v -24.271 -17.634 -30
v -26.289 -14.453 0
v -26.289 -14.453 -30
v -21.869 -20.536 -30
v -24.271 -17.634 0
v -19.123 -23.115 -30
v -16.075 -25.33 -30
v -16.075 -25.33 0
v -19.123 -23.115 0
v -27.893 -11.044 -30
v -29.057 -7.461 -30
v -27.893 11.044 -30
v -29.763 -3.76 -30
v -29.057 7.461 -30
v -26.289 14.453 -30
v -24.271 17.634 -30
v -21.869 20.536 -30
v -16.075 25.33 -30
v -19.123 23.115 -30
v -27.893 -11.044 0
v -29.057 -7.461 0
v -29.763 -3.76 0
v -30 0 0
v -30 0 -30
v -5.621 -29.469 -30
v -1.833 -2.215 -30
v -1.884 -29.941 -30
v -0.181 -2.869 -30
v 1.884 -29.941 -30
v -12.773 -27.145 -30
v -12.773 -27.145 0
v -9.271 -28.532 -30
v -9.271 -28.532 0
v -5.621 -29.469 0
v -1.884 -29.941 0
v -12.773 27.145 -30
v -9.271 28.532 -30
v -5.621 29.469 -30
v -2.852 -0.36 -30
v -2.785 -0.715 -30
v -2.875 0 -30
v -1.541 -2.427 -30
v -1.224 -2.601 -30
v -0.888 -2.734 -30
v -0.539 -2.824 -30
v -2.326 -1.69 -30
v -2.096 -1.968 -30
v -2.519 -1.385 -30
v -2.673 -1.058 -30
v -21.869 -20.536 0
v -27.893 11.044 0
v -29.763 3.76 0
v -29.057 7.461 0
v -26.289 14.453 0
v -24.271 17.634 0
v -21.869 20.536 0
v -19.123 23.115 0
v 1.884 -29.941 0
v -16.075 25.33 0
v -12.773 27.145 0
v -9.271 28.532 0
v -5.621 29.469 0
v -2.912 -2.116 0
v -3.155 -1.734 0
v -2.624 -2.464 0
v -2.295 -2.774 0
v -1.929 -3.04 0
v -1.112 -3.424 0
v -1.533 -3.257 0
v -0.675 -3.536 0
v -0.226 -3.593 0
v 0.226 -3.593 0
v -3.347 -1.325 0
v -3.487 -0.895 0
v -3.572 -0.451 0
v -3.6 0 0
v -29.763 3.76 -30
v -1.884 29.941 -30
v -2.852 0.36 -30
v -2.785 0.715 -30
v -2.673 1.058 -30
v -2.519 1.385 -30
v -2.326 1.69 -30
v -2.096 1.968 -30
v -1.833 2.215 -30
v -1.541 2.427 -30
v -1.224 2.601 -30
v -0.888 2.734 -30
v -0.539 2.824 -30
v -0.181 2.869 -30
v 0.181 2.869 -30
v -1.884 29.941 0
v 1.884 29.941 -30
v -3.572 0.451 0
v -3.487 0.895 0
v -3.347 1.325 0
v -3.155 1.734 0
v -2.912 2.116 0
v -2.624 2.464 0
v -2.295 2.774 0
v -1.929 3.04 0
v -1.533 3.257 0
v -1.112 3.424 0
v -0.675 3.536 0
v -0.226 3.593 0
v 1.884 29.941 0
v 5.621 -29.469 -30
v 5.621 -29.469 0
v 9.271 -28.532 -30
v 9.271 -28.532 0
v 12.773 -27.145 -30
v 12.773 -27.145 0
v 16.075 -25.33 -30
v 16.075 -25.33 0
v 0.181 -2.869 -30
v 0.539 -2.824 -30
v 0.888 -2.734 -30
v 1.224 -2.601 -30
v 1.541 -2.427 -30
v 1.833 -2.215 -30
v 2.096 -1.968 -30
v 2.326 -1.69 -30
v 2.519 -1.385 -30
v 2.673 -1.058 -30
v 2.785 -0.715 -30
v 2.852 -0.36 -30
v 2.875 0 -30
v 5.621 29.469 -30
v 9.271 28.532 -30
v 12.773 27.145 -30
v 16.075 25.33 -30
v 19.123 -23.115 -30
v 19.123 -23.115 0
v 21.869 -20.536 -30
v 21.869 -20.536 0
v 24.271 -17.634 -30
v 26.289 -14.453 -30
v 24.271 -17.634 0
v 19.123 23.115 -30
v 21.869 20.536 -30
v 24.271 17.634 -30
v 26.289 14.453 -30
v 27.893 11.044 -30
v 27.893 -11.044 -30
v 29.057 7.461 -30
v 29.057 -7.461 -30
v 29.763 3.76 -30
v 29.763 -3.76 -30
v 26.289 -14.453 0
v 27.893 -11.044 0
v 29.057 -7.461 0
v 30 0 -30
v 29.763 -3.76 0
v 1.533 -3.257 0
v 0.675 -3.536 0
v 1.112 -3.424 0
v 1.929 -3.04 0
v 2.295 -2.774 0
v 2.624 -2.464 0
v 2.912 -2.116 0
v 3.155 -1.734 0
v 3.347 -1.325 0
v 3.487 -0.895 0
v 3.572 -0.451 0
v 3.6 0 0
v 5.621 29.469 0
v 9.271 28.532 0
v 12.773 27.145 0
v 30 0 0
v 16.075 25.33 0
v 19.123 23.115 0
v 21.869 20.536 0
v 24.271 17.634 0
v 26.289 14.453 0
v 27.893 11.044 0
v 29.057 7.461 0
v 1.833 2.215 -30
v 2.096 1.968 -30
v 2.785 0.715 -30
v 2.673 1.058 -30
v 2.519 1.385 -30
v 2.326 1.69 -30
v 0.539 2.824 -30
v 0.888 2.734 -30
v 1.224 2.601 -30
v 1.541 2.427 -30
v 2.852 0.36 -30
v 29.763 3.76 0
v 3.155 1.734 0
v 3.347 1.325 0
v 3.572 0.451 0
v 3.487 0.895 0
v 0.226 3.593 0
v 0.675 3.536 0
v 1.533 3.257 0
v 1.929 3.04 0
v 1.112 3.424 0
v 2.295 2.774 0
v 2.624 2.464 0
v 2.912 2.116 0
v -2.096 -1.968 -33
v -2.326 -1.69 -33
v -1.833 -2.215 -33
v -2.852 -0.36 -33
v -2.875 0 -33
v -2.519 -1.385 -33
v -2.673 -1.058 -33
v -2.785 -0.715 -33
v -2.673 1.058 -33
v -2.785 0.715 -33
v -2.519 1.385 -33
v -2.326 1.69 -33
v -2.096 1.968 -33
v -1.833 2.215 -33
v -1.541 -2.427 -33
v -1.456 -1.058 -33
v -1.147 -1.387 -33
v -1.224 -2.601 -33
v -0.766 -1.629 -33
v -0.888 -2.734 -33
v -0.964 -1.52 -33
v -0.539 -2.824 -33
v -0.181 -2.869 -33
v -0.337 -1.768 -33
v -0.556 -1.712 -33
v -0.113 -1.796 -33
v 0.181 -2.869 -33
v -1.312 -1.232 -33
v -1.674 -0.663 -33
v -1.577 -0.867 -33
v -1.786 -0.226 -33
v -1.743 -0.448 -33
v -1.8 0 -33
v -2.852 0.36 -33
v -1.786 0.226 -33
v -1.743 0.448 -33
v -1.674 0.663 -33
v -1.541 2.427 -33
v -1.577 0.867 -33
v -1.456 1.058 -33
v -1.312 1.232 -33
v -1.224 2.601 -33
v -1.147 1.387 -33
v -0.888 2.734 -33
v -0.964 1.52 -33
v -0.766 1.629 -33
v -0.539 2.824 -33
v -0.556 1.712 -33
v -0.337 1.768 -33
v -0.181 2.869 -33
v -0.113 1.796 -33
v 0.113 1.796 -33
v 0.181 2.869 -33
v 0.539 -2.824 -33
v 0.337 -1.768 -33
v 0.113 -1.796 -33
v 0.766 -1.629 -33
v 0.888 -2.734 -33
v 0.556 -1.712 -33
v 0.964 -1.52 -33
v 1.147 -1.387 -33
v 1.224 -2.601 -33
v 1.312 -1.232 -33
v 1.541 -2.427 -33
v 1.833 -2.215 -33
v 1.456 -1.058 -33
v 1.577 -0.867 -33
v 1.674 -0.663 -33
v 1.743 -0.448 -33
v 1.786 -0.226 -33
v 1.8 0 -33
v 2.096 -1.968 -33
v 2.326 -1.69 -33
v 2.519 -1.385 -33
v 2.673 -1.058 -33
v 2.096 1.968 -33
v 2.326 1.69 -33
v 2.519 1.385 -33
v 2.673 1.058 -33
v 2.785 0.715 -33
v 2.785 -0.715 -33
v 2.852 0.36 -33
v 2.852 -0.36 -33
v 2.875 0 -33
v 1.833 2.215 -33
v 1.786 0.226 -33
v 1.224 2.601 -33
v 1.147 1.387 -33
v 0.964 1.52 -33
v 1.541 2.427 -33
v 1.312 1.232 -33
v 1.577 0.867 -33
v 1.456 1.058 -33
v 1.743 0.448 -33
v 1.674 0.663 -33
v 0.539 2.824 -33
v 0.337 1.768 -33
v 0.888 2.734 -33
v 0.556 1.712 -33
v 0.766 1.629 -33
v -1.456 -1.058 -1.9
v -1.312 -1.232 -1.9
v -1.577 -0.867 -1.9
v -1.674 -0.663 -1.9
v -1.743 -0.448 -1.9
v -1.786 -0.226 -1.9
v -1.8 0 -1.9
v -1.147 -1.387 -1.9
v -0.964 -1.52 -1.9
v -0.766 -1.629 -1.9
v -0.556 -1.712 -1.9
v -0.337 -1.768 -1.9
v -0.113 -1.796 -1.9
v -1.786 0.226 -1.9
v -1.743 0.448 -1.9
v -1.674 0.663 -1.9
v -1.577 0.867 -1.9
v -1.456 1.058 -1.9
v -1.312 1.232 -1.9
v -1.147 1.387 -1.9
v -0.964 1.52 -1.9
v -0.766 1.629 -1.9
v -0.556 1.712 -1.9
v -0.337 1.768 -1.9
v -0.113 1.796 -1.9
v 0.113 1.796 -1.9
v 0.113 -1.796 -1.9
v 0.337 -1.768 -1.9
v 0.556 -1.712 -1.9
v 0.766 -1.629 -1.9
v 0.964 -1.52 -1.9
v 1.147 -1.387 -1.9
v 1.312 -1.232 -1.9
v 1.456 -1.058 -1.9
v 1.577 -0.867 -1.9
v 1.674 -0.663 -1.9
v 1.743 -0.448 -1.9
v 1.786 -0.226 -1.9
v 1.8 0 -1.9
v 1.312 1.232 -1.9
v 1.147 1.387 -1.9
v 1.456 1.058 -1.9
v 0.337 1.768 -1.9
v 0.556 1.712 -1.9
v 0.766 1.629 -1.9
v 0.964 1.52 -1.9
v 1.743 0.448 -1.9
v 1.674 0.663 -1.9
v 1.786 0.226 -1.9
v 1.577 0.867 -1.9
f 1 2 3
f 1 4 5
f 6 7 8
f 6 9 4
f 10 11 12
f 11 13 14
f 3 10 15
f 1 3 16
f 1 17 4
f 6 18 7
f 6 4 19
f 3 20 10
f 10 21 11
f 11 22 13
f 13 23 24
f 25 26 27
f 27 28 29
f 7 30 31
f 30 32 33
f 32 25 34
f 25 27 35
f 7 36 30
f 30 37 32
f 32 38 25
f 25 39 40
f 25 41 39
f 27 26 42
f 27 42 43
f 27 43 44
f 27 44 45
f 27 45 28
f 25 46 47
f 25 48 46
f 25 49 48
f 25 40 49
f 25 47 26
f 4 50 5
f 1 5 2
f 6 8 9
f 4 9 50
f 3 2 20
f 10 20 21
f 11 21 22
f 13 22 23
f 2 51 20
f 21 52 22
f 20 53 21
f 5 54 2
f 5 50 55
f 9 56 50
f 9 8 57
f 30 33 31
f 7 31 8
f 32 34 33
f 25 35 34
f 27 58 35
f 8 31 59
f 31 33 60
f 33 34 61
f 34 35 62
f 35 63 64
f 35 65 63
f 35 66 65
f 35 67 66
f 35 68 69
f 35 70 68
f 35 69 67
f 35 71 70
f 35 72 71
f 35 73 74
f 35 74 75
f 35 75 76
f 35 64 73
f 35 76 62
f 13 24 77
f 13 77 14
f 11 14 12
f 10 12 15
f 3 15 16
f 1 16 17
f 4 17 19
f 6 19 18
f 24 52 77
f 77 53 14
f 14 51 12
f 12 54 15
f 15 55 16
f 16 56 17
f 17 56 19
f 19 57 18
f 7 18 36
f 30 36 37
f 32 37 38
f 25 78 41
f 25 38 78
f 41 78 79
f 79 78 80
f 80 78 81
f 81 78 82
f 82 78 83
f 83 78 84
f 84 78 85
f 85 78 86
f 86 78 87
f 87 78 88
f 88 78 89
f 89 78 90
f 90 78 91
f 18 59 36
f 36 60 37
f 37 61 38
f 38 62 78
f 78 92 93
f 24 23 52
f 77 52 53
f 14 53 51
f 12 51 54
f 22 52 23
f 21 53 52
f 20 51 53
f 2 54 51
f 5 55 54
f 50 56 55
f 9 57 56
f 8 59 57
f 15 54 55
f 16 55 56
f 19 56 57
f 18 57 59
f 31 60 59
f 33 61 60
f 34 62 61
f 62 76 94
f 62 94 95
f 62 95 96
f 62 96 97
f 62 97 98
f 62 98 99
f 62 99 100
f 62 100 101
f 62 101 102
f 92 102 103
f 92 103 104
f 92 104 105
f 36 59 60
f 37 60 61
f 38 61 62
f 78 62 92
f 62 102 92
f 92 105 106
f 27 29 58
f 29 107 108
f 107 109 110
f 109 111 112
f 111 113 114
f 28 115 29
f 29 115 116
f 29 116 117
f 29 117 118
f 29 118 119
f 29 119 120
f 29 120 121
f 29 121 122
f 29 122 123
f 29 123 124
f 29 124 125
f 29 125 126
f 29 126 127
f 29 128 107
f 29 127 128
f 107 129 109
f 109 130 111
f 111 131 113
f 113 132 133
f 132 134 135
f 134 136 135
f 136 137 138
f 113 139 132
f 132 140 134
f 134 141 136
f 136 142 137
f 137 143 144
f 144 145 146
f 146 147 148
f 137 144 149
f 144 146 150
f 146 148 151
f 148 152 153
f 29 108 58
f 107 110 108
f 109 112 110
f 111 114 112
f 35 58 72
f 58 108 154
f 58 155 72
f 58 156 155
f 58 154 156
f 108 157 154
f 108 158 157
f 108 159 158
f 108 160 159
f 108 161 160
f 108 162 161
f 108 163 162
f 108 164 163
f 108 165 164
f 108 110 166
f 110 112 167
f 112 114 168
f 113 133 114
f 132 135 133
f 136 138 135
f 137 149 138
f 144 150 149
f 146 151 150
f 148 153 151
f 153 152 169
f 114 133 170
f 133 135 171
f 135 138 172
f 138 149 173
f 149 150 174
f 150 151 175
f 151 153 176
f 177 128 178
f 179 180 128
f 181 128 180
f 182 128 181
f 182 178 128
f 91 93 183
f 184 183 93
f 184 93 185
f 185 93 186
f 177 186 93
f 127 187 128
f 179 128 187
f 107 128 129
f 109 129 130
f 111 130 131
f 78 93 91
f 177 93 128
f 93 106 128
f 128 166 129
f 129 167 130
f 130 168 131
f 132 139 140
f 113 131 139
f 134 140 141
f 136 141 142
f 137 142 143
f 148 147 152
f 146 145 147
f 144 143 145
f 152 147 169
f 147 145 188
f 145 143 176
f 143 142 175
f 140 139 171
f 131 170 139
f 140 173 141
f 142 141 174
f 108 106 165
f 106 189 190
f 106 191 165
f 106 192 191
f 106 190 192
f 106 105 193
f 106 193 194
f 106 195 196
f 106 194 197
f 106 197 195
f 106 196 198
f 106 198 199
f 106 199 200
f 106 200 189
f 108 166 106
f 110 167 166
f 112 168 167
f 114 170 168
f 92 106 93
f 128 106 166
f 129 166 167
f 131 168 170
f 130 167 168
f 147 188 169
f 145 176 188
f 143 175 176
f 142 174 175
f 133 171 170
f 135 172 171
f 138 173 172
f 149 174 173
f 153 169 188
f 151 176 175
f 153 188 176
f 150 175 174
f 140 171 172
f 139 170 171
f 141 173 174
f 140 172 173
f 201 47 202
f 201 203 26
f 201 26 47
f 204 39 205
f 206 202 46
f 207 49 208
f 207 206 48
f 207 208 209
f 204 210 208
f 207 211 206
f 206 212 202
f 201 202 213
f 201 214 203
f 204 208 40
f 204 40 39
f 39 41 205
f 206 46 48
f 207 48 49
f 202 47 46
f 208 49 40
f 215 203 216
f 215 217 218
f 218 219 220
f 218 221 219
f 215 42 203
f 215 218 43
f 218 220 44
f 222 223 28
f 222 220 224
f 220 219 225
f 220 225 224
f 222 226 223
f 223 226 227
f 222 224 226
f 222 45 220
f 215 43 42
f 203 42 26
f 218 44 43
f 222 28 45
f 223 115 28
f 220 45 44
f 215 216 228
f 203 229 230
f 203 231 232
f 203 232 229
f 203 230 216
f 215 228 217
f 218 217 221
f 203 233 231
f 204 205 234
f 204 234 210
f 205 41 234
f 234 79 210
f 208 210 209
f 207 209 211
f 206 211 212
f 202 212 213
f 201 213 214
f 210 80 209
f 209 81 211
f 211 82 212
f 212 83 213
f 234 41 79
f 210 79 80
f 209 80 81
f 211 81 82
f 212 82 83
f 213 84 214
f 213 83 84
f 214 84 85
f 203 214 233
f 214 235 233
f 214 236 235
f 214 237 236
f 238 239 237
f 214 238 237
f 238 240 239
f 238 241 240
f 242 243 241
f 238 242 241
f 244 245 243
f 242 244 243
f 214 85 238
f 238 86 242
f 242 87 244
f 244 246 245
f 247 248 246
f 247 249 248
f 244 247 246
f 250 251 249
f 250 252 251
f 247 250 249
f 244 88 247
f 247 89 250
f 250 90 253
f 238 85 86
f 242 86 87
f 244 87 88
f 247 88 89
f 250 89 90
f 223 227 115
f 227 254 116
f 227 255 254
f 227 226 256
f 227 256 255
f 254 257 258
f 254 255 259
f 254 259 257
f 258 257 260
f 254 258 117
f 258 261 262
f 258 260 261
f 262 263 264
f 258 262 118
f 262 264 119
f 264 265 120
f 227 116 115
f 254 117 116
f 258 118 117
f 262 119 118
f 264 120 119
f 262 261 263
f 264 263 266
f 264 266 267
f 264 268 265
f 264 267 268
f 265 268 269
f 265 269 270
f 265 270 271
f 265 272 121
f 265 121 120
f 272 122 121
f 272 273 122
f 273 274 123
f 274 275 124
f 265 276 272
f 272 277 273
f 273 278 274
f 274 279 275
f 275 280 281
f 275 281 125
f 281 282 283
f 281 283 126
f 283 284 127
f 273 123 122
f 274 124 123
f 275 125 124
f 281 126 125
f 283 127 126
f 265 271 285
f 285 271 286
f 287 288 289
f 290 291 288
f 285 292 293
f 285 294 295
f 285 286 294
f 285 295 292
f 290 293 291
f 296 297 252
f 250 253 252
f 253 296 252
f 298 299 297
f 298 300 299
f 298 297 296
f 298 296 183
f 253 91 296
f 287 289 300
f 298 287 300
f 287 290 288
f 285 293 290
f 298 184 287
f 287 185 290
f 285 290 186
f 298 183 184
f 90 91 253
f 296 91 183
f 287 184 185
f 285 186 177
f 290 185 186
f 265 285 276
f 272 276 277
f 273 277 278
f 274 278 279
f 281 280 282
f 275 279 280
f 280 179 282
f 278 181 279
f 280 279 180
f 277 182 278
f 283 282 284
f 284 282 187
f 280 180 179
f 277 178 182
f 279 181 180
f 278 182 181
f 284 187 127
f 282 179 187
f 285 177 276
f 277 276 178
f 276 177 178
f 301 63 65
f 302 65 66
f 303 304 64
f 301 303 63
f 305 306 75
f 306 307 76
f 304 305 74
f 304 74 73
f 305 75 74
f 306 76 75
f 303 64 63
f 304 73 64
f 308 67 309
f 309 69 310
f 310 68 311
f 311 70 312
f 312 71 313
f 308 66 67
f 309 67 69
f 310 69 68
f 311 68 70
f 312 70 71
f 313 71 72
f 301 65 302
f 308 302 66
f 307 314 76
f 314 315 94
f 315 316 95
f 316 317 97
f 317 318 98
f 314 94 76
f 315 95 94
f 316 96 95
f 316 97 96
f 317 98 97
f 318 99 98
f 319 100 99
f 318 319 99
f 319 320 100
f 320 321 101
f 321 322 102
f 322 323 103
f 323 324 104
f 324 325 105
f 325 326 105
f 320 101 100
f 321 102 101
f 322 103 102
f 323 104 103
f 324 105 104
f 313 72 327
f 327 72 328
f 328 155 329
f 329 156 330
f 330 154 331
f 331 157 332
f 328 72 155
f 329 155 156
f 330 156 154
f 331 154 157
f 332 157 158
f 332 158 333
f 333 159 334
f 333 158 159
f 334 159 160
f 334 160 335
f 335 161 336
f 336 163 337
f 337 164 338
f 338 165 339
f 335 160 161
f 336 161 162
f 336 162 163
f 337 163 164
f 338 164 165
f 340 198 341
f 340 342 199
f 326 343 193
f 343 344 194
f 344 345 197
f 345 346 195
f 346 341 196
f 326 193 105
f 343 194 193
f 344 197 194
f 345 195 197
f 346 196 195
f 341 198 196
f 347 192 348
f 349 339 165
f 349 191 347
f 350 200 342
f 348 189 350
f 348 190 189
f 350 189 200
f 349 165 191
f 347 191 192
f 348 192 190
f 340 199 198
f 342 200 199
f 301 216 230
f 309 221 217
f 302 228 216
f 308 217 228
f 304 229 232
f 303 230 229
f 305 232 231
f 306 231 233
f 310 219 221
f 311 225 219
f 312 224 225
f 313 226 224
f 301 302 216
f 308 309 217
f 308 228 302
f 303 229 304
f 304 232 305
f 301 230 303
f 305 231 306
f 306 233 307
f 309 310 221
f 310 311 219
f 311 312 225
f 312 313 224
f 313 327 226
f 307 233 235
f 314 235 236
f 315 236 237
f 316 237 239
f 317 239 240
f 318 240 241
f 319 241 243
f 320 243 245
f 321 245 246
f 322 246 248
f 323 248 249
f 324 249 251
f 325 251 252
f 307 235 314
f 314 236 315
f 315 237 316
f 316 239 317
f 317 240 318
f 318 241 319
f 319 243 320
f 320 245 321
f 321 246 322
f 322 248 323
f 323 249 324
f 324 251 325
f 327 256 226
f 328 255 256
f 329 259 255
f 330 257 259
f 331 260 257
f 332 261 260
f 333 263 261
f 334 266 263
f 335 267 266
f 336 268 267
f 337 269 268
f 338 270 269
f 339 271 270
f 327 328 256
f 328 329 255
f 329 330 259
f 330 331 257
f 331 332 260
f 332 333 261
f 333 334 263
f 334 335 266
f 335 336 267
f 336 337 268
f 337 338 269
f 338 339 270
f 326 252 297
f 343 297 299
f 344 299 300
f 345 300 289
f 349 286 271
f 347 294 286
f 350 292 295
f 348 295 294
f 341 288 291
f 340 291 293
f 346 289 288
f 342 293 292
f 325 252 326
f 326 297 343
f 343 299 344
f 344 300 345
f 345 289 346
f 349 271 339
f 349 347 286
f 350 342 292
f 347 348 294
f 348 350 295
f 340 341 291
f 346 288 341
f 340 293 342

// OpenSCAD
$fn = 50;

difference() {
	union() {
		translate(v = [0, 0, -30.0]) {
			cylinder(h = 30, r = 30.0);
		}
		#translate(v = [0, 0, -33.0]) {
			cylinder(h = 33, r = 2.875);
		}
	}
	union() {
		translate(v = [0, 0, 0]) {
			rotate(a = [0, 0, 0]) {
				difference() {
					union() {
						translate(v = [0, 0, -33.0]) {
							cylinder(h = 33, r = 1.5);
						}
						translate(v = [0, 0, -1.9]) {
							cylinder(h = 1.9, r1 = 1.8, r2 = 3.6);
						}
						translate(v = [0, 0, -33.0]) {
							cylinder(h = 33, r = 1.8);
						}
						translate(v = [0, 0, -33.0]) {
							cylinder(h = 33, r = 1.5);
						}
					}
					union();
				}
			}
		}
	}
}
